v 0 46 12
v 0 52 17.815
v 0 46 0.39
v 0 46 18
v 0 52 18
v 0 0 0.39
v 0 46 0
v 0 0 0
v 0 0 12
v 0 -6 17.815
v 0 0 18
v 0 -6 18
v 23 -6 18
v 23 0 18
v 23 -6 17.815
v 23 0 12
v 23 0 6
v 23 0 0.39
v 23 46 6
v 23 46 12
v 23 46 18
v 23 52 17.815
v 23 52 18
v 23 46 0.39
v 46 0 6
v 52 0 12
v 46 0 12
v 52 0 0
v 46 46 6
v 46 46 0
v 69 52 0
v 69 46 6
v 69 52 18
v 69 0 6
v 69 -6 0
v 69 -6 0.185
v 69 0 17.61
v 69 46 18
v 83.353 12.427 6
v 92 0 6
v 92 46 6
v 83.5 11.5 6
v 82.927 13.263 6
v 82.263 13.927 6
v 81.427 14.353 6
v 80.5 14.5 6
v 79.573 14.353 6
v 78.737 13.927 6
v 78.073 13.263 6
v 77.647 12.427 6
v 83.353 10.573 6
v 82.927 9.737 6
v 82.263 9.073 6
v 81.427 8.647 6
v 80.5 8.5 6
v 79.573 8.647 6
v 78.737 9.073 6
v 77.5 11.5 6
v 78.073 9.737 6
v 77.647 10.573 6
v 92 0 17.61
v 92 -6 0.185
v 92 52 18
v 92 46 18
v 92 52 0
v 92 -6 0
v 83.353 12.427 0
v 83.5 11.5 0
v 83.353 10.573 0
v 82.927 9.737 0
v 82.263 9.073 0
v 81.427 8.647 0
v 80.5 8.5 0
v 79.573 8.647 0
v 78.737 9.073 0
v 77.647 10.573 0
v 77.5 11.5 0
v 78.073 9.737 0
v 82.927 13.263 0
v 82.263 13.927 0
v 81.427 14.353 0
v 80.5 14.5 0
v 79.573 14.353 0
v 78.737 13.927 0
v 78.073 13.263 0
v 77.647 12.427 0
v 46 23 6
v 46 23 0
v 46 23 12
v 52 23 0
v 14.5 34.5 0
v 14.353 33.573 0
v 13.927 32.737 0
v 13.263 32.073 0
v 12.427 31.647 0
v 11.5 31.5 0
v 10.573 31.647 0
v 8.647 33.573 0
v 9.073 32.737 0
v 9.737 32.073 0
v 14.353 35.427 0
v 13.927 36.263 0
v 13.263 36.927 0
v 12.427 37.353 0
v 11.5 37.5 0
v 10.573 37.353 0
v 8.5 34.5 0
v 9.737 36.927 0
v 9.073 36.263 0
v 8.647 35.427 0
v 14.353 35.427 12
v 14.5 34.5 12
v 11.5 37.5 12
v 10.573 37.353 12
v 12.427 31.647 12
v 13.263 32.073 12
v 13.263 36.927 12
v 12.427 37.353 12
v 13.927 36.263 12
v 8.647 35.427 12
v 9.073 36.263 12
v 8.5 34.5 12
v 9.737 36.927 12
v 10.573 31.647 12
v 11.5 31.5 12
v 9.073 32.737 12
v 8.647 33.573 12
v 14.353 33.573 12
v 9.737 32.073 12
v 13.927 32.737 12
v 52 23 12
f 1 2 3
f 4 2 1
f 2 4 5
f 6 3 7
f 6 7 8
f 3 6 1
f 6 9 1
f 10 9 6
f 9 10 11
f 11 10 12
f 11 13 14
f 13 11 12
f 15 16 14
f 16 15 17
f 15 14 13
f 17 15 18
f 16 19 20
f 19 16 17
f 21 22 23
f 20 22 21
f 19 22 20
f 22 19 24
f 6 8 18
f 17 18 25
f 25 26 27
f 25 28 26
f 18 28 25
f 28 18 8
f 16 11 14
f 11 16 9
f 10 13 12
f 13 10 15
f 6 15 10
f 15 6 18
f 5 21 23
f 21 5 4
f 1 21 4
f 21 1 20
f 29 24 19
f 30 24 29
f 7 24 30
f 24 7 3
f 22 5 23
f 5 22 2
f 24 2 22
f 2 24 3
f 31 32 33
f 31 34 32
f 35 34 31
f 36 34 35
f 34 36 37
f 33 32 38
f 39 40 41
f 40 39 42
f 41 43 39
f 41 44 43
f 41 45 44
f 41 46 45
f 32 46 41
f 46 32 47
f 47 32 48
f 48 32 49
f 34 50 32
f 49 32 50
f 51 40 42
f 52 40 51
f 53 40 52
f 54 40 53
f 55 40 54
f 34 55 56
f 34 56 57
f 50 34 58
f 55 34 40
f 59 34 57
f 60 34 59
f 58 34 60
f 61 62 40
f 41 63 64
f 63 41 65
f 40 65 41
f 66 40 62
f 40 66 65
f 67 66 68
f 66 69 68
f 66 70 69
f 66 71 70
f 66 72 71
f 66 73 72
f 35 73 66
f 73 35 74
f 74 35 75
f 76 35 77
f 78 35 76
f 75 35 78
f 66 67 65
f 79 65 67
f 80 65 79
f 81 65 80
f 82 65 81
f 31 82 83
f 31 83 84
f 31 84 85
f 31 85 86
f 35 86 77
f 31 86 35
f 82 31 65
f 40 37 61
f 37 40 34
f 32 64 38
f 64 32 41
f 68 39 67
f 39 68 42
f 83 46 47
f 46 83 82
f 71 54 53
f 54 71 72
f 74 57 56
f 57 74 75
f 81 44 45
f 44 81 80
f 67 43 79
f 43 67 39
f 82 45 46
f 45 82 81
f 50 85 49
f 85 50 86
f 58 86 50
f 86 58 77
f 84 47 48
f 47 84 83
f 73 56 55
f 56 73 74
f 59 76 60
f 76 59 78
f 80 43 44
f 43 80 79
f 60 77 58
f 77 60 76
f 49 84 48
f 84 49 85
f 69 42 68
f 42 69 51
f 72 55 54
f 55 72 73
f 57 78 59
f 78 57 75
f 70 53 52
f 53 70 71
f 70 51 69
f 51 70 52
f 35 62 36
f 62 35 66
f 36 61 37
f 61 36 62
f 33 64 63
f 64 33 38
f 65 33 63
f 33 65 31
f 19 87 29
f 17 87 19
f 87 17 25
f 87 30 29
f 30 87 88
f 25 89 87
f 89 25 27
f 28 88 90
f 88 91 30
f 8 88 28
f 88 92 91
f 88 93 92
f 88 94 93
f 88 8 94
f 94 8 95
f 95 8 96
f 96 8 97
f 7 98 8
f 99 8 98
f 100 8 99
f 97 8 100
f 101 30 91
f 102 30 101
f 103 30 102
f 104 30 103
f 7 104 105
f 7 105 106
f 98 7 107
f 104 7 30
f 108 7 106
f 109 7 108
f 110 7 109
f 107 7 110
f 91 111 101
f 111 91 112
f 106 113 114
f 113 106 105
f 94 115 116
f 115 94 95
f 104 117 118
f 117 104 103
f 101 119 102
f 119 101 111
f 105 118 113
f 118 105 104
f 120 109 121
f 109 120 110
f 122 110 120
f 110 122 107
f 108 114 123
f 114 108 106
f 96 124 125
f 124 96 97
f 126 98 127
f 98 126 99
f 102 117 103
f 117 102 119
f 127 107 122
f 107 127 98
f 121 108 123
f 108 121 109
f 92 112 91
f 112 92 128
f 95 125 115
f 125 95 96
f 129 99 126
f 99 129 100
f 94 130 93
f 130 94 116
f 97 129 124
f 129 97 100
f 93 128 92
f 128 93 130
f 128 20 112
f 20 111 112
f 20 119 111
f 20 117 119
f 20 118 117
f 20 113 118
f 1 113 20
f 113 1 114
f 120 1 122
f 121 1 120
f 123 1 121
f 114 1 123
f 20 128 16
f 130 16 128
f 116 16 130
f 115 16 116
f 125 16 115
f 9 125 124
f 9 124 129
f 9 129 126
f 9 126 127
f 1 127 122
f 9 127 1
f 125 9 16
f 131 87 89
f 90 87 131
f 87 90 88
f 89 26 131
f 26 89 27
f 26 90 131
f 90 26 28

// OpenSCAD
$fn=20;

DEPTH=6;
WIDTH=23;
SCREW_HOLE_DIAMETER=6;
SCREW_HOLE_LEFT=0;
SCREW_HOLE_RIGHT=1;

width=WIDTH;
dent_depth=2;

module screw_hole(placement=SCREW_HOLE_LEFT) {
        translate([width/2,(1+2*placement)*width/2,-1]) cylinder(d=SCREW_HOLE_DIAMETER,h=DEPTH+2);
}

module plate(width, height,placement=SCREW_HOLE_LEFT) {
    difference() {
        union() {
            cube([width, height, DEPTH]);
        }
        screw_hole(placement);
    }
}

module small_plate() {
    plate(width, width*2);
}

module big_plate() {
    plate(2*width, 2*width, placement=SCREW_HOLE_RIGHT);
}

module edge(depth) {
    cube([width, DEPTH, depth]);
}

module cutoff_edge(depth) {
    difference(){
        edge(depth);
        rotate([19,0,0]) translate([0,-.2,-depth]) edge(3*depth);
    }
}

module bottom_part(){
     union() {
        small_plate();
        translate([0,2*width,0]) edge(3*DEPTH);
        translate([width,-DEPTH,3*DEPTH]) rotate([0,180,0]) cutoff_edge(3*DEPTH);
    }
 }

module top_part(){
     union() {
        big_plate();
        translate([0,0,DEPTH]) plate(width, width*2,placement=SCREW_HOLE_RIGHT);
        translate([0,-DEPTH,0]) cutoff_edge(3*DEPTH);
        translate([width,2*width+DEPTH,0]) rotate([0,0,180]) cutoff_edge(3*DEPTH);
        translate([2*width+DEPTH,0,0]) rotate([0,0,90]) edge(2*DEPTH);
    }
}

//translate([0,0,3*DEPTH]) rotate([180,0,90]) color("green") bottom_part();
translate([3*width,0,0]) bottom_part();
top_part();
